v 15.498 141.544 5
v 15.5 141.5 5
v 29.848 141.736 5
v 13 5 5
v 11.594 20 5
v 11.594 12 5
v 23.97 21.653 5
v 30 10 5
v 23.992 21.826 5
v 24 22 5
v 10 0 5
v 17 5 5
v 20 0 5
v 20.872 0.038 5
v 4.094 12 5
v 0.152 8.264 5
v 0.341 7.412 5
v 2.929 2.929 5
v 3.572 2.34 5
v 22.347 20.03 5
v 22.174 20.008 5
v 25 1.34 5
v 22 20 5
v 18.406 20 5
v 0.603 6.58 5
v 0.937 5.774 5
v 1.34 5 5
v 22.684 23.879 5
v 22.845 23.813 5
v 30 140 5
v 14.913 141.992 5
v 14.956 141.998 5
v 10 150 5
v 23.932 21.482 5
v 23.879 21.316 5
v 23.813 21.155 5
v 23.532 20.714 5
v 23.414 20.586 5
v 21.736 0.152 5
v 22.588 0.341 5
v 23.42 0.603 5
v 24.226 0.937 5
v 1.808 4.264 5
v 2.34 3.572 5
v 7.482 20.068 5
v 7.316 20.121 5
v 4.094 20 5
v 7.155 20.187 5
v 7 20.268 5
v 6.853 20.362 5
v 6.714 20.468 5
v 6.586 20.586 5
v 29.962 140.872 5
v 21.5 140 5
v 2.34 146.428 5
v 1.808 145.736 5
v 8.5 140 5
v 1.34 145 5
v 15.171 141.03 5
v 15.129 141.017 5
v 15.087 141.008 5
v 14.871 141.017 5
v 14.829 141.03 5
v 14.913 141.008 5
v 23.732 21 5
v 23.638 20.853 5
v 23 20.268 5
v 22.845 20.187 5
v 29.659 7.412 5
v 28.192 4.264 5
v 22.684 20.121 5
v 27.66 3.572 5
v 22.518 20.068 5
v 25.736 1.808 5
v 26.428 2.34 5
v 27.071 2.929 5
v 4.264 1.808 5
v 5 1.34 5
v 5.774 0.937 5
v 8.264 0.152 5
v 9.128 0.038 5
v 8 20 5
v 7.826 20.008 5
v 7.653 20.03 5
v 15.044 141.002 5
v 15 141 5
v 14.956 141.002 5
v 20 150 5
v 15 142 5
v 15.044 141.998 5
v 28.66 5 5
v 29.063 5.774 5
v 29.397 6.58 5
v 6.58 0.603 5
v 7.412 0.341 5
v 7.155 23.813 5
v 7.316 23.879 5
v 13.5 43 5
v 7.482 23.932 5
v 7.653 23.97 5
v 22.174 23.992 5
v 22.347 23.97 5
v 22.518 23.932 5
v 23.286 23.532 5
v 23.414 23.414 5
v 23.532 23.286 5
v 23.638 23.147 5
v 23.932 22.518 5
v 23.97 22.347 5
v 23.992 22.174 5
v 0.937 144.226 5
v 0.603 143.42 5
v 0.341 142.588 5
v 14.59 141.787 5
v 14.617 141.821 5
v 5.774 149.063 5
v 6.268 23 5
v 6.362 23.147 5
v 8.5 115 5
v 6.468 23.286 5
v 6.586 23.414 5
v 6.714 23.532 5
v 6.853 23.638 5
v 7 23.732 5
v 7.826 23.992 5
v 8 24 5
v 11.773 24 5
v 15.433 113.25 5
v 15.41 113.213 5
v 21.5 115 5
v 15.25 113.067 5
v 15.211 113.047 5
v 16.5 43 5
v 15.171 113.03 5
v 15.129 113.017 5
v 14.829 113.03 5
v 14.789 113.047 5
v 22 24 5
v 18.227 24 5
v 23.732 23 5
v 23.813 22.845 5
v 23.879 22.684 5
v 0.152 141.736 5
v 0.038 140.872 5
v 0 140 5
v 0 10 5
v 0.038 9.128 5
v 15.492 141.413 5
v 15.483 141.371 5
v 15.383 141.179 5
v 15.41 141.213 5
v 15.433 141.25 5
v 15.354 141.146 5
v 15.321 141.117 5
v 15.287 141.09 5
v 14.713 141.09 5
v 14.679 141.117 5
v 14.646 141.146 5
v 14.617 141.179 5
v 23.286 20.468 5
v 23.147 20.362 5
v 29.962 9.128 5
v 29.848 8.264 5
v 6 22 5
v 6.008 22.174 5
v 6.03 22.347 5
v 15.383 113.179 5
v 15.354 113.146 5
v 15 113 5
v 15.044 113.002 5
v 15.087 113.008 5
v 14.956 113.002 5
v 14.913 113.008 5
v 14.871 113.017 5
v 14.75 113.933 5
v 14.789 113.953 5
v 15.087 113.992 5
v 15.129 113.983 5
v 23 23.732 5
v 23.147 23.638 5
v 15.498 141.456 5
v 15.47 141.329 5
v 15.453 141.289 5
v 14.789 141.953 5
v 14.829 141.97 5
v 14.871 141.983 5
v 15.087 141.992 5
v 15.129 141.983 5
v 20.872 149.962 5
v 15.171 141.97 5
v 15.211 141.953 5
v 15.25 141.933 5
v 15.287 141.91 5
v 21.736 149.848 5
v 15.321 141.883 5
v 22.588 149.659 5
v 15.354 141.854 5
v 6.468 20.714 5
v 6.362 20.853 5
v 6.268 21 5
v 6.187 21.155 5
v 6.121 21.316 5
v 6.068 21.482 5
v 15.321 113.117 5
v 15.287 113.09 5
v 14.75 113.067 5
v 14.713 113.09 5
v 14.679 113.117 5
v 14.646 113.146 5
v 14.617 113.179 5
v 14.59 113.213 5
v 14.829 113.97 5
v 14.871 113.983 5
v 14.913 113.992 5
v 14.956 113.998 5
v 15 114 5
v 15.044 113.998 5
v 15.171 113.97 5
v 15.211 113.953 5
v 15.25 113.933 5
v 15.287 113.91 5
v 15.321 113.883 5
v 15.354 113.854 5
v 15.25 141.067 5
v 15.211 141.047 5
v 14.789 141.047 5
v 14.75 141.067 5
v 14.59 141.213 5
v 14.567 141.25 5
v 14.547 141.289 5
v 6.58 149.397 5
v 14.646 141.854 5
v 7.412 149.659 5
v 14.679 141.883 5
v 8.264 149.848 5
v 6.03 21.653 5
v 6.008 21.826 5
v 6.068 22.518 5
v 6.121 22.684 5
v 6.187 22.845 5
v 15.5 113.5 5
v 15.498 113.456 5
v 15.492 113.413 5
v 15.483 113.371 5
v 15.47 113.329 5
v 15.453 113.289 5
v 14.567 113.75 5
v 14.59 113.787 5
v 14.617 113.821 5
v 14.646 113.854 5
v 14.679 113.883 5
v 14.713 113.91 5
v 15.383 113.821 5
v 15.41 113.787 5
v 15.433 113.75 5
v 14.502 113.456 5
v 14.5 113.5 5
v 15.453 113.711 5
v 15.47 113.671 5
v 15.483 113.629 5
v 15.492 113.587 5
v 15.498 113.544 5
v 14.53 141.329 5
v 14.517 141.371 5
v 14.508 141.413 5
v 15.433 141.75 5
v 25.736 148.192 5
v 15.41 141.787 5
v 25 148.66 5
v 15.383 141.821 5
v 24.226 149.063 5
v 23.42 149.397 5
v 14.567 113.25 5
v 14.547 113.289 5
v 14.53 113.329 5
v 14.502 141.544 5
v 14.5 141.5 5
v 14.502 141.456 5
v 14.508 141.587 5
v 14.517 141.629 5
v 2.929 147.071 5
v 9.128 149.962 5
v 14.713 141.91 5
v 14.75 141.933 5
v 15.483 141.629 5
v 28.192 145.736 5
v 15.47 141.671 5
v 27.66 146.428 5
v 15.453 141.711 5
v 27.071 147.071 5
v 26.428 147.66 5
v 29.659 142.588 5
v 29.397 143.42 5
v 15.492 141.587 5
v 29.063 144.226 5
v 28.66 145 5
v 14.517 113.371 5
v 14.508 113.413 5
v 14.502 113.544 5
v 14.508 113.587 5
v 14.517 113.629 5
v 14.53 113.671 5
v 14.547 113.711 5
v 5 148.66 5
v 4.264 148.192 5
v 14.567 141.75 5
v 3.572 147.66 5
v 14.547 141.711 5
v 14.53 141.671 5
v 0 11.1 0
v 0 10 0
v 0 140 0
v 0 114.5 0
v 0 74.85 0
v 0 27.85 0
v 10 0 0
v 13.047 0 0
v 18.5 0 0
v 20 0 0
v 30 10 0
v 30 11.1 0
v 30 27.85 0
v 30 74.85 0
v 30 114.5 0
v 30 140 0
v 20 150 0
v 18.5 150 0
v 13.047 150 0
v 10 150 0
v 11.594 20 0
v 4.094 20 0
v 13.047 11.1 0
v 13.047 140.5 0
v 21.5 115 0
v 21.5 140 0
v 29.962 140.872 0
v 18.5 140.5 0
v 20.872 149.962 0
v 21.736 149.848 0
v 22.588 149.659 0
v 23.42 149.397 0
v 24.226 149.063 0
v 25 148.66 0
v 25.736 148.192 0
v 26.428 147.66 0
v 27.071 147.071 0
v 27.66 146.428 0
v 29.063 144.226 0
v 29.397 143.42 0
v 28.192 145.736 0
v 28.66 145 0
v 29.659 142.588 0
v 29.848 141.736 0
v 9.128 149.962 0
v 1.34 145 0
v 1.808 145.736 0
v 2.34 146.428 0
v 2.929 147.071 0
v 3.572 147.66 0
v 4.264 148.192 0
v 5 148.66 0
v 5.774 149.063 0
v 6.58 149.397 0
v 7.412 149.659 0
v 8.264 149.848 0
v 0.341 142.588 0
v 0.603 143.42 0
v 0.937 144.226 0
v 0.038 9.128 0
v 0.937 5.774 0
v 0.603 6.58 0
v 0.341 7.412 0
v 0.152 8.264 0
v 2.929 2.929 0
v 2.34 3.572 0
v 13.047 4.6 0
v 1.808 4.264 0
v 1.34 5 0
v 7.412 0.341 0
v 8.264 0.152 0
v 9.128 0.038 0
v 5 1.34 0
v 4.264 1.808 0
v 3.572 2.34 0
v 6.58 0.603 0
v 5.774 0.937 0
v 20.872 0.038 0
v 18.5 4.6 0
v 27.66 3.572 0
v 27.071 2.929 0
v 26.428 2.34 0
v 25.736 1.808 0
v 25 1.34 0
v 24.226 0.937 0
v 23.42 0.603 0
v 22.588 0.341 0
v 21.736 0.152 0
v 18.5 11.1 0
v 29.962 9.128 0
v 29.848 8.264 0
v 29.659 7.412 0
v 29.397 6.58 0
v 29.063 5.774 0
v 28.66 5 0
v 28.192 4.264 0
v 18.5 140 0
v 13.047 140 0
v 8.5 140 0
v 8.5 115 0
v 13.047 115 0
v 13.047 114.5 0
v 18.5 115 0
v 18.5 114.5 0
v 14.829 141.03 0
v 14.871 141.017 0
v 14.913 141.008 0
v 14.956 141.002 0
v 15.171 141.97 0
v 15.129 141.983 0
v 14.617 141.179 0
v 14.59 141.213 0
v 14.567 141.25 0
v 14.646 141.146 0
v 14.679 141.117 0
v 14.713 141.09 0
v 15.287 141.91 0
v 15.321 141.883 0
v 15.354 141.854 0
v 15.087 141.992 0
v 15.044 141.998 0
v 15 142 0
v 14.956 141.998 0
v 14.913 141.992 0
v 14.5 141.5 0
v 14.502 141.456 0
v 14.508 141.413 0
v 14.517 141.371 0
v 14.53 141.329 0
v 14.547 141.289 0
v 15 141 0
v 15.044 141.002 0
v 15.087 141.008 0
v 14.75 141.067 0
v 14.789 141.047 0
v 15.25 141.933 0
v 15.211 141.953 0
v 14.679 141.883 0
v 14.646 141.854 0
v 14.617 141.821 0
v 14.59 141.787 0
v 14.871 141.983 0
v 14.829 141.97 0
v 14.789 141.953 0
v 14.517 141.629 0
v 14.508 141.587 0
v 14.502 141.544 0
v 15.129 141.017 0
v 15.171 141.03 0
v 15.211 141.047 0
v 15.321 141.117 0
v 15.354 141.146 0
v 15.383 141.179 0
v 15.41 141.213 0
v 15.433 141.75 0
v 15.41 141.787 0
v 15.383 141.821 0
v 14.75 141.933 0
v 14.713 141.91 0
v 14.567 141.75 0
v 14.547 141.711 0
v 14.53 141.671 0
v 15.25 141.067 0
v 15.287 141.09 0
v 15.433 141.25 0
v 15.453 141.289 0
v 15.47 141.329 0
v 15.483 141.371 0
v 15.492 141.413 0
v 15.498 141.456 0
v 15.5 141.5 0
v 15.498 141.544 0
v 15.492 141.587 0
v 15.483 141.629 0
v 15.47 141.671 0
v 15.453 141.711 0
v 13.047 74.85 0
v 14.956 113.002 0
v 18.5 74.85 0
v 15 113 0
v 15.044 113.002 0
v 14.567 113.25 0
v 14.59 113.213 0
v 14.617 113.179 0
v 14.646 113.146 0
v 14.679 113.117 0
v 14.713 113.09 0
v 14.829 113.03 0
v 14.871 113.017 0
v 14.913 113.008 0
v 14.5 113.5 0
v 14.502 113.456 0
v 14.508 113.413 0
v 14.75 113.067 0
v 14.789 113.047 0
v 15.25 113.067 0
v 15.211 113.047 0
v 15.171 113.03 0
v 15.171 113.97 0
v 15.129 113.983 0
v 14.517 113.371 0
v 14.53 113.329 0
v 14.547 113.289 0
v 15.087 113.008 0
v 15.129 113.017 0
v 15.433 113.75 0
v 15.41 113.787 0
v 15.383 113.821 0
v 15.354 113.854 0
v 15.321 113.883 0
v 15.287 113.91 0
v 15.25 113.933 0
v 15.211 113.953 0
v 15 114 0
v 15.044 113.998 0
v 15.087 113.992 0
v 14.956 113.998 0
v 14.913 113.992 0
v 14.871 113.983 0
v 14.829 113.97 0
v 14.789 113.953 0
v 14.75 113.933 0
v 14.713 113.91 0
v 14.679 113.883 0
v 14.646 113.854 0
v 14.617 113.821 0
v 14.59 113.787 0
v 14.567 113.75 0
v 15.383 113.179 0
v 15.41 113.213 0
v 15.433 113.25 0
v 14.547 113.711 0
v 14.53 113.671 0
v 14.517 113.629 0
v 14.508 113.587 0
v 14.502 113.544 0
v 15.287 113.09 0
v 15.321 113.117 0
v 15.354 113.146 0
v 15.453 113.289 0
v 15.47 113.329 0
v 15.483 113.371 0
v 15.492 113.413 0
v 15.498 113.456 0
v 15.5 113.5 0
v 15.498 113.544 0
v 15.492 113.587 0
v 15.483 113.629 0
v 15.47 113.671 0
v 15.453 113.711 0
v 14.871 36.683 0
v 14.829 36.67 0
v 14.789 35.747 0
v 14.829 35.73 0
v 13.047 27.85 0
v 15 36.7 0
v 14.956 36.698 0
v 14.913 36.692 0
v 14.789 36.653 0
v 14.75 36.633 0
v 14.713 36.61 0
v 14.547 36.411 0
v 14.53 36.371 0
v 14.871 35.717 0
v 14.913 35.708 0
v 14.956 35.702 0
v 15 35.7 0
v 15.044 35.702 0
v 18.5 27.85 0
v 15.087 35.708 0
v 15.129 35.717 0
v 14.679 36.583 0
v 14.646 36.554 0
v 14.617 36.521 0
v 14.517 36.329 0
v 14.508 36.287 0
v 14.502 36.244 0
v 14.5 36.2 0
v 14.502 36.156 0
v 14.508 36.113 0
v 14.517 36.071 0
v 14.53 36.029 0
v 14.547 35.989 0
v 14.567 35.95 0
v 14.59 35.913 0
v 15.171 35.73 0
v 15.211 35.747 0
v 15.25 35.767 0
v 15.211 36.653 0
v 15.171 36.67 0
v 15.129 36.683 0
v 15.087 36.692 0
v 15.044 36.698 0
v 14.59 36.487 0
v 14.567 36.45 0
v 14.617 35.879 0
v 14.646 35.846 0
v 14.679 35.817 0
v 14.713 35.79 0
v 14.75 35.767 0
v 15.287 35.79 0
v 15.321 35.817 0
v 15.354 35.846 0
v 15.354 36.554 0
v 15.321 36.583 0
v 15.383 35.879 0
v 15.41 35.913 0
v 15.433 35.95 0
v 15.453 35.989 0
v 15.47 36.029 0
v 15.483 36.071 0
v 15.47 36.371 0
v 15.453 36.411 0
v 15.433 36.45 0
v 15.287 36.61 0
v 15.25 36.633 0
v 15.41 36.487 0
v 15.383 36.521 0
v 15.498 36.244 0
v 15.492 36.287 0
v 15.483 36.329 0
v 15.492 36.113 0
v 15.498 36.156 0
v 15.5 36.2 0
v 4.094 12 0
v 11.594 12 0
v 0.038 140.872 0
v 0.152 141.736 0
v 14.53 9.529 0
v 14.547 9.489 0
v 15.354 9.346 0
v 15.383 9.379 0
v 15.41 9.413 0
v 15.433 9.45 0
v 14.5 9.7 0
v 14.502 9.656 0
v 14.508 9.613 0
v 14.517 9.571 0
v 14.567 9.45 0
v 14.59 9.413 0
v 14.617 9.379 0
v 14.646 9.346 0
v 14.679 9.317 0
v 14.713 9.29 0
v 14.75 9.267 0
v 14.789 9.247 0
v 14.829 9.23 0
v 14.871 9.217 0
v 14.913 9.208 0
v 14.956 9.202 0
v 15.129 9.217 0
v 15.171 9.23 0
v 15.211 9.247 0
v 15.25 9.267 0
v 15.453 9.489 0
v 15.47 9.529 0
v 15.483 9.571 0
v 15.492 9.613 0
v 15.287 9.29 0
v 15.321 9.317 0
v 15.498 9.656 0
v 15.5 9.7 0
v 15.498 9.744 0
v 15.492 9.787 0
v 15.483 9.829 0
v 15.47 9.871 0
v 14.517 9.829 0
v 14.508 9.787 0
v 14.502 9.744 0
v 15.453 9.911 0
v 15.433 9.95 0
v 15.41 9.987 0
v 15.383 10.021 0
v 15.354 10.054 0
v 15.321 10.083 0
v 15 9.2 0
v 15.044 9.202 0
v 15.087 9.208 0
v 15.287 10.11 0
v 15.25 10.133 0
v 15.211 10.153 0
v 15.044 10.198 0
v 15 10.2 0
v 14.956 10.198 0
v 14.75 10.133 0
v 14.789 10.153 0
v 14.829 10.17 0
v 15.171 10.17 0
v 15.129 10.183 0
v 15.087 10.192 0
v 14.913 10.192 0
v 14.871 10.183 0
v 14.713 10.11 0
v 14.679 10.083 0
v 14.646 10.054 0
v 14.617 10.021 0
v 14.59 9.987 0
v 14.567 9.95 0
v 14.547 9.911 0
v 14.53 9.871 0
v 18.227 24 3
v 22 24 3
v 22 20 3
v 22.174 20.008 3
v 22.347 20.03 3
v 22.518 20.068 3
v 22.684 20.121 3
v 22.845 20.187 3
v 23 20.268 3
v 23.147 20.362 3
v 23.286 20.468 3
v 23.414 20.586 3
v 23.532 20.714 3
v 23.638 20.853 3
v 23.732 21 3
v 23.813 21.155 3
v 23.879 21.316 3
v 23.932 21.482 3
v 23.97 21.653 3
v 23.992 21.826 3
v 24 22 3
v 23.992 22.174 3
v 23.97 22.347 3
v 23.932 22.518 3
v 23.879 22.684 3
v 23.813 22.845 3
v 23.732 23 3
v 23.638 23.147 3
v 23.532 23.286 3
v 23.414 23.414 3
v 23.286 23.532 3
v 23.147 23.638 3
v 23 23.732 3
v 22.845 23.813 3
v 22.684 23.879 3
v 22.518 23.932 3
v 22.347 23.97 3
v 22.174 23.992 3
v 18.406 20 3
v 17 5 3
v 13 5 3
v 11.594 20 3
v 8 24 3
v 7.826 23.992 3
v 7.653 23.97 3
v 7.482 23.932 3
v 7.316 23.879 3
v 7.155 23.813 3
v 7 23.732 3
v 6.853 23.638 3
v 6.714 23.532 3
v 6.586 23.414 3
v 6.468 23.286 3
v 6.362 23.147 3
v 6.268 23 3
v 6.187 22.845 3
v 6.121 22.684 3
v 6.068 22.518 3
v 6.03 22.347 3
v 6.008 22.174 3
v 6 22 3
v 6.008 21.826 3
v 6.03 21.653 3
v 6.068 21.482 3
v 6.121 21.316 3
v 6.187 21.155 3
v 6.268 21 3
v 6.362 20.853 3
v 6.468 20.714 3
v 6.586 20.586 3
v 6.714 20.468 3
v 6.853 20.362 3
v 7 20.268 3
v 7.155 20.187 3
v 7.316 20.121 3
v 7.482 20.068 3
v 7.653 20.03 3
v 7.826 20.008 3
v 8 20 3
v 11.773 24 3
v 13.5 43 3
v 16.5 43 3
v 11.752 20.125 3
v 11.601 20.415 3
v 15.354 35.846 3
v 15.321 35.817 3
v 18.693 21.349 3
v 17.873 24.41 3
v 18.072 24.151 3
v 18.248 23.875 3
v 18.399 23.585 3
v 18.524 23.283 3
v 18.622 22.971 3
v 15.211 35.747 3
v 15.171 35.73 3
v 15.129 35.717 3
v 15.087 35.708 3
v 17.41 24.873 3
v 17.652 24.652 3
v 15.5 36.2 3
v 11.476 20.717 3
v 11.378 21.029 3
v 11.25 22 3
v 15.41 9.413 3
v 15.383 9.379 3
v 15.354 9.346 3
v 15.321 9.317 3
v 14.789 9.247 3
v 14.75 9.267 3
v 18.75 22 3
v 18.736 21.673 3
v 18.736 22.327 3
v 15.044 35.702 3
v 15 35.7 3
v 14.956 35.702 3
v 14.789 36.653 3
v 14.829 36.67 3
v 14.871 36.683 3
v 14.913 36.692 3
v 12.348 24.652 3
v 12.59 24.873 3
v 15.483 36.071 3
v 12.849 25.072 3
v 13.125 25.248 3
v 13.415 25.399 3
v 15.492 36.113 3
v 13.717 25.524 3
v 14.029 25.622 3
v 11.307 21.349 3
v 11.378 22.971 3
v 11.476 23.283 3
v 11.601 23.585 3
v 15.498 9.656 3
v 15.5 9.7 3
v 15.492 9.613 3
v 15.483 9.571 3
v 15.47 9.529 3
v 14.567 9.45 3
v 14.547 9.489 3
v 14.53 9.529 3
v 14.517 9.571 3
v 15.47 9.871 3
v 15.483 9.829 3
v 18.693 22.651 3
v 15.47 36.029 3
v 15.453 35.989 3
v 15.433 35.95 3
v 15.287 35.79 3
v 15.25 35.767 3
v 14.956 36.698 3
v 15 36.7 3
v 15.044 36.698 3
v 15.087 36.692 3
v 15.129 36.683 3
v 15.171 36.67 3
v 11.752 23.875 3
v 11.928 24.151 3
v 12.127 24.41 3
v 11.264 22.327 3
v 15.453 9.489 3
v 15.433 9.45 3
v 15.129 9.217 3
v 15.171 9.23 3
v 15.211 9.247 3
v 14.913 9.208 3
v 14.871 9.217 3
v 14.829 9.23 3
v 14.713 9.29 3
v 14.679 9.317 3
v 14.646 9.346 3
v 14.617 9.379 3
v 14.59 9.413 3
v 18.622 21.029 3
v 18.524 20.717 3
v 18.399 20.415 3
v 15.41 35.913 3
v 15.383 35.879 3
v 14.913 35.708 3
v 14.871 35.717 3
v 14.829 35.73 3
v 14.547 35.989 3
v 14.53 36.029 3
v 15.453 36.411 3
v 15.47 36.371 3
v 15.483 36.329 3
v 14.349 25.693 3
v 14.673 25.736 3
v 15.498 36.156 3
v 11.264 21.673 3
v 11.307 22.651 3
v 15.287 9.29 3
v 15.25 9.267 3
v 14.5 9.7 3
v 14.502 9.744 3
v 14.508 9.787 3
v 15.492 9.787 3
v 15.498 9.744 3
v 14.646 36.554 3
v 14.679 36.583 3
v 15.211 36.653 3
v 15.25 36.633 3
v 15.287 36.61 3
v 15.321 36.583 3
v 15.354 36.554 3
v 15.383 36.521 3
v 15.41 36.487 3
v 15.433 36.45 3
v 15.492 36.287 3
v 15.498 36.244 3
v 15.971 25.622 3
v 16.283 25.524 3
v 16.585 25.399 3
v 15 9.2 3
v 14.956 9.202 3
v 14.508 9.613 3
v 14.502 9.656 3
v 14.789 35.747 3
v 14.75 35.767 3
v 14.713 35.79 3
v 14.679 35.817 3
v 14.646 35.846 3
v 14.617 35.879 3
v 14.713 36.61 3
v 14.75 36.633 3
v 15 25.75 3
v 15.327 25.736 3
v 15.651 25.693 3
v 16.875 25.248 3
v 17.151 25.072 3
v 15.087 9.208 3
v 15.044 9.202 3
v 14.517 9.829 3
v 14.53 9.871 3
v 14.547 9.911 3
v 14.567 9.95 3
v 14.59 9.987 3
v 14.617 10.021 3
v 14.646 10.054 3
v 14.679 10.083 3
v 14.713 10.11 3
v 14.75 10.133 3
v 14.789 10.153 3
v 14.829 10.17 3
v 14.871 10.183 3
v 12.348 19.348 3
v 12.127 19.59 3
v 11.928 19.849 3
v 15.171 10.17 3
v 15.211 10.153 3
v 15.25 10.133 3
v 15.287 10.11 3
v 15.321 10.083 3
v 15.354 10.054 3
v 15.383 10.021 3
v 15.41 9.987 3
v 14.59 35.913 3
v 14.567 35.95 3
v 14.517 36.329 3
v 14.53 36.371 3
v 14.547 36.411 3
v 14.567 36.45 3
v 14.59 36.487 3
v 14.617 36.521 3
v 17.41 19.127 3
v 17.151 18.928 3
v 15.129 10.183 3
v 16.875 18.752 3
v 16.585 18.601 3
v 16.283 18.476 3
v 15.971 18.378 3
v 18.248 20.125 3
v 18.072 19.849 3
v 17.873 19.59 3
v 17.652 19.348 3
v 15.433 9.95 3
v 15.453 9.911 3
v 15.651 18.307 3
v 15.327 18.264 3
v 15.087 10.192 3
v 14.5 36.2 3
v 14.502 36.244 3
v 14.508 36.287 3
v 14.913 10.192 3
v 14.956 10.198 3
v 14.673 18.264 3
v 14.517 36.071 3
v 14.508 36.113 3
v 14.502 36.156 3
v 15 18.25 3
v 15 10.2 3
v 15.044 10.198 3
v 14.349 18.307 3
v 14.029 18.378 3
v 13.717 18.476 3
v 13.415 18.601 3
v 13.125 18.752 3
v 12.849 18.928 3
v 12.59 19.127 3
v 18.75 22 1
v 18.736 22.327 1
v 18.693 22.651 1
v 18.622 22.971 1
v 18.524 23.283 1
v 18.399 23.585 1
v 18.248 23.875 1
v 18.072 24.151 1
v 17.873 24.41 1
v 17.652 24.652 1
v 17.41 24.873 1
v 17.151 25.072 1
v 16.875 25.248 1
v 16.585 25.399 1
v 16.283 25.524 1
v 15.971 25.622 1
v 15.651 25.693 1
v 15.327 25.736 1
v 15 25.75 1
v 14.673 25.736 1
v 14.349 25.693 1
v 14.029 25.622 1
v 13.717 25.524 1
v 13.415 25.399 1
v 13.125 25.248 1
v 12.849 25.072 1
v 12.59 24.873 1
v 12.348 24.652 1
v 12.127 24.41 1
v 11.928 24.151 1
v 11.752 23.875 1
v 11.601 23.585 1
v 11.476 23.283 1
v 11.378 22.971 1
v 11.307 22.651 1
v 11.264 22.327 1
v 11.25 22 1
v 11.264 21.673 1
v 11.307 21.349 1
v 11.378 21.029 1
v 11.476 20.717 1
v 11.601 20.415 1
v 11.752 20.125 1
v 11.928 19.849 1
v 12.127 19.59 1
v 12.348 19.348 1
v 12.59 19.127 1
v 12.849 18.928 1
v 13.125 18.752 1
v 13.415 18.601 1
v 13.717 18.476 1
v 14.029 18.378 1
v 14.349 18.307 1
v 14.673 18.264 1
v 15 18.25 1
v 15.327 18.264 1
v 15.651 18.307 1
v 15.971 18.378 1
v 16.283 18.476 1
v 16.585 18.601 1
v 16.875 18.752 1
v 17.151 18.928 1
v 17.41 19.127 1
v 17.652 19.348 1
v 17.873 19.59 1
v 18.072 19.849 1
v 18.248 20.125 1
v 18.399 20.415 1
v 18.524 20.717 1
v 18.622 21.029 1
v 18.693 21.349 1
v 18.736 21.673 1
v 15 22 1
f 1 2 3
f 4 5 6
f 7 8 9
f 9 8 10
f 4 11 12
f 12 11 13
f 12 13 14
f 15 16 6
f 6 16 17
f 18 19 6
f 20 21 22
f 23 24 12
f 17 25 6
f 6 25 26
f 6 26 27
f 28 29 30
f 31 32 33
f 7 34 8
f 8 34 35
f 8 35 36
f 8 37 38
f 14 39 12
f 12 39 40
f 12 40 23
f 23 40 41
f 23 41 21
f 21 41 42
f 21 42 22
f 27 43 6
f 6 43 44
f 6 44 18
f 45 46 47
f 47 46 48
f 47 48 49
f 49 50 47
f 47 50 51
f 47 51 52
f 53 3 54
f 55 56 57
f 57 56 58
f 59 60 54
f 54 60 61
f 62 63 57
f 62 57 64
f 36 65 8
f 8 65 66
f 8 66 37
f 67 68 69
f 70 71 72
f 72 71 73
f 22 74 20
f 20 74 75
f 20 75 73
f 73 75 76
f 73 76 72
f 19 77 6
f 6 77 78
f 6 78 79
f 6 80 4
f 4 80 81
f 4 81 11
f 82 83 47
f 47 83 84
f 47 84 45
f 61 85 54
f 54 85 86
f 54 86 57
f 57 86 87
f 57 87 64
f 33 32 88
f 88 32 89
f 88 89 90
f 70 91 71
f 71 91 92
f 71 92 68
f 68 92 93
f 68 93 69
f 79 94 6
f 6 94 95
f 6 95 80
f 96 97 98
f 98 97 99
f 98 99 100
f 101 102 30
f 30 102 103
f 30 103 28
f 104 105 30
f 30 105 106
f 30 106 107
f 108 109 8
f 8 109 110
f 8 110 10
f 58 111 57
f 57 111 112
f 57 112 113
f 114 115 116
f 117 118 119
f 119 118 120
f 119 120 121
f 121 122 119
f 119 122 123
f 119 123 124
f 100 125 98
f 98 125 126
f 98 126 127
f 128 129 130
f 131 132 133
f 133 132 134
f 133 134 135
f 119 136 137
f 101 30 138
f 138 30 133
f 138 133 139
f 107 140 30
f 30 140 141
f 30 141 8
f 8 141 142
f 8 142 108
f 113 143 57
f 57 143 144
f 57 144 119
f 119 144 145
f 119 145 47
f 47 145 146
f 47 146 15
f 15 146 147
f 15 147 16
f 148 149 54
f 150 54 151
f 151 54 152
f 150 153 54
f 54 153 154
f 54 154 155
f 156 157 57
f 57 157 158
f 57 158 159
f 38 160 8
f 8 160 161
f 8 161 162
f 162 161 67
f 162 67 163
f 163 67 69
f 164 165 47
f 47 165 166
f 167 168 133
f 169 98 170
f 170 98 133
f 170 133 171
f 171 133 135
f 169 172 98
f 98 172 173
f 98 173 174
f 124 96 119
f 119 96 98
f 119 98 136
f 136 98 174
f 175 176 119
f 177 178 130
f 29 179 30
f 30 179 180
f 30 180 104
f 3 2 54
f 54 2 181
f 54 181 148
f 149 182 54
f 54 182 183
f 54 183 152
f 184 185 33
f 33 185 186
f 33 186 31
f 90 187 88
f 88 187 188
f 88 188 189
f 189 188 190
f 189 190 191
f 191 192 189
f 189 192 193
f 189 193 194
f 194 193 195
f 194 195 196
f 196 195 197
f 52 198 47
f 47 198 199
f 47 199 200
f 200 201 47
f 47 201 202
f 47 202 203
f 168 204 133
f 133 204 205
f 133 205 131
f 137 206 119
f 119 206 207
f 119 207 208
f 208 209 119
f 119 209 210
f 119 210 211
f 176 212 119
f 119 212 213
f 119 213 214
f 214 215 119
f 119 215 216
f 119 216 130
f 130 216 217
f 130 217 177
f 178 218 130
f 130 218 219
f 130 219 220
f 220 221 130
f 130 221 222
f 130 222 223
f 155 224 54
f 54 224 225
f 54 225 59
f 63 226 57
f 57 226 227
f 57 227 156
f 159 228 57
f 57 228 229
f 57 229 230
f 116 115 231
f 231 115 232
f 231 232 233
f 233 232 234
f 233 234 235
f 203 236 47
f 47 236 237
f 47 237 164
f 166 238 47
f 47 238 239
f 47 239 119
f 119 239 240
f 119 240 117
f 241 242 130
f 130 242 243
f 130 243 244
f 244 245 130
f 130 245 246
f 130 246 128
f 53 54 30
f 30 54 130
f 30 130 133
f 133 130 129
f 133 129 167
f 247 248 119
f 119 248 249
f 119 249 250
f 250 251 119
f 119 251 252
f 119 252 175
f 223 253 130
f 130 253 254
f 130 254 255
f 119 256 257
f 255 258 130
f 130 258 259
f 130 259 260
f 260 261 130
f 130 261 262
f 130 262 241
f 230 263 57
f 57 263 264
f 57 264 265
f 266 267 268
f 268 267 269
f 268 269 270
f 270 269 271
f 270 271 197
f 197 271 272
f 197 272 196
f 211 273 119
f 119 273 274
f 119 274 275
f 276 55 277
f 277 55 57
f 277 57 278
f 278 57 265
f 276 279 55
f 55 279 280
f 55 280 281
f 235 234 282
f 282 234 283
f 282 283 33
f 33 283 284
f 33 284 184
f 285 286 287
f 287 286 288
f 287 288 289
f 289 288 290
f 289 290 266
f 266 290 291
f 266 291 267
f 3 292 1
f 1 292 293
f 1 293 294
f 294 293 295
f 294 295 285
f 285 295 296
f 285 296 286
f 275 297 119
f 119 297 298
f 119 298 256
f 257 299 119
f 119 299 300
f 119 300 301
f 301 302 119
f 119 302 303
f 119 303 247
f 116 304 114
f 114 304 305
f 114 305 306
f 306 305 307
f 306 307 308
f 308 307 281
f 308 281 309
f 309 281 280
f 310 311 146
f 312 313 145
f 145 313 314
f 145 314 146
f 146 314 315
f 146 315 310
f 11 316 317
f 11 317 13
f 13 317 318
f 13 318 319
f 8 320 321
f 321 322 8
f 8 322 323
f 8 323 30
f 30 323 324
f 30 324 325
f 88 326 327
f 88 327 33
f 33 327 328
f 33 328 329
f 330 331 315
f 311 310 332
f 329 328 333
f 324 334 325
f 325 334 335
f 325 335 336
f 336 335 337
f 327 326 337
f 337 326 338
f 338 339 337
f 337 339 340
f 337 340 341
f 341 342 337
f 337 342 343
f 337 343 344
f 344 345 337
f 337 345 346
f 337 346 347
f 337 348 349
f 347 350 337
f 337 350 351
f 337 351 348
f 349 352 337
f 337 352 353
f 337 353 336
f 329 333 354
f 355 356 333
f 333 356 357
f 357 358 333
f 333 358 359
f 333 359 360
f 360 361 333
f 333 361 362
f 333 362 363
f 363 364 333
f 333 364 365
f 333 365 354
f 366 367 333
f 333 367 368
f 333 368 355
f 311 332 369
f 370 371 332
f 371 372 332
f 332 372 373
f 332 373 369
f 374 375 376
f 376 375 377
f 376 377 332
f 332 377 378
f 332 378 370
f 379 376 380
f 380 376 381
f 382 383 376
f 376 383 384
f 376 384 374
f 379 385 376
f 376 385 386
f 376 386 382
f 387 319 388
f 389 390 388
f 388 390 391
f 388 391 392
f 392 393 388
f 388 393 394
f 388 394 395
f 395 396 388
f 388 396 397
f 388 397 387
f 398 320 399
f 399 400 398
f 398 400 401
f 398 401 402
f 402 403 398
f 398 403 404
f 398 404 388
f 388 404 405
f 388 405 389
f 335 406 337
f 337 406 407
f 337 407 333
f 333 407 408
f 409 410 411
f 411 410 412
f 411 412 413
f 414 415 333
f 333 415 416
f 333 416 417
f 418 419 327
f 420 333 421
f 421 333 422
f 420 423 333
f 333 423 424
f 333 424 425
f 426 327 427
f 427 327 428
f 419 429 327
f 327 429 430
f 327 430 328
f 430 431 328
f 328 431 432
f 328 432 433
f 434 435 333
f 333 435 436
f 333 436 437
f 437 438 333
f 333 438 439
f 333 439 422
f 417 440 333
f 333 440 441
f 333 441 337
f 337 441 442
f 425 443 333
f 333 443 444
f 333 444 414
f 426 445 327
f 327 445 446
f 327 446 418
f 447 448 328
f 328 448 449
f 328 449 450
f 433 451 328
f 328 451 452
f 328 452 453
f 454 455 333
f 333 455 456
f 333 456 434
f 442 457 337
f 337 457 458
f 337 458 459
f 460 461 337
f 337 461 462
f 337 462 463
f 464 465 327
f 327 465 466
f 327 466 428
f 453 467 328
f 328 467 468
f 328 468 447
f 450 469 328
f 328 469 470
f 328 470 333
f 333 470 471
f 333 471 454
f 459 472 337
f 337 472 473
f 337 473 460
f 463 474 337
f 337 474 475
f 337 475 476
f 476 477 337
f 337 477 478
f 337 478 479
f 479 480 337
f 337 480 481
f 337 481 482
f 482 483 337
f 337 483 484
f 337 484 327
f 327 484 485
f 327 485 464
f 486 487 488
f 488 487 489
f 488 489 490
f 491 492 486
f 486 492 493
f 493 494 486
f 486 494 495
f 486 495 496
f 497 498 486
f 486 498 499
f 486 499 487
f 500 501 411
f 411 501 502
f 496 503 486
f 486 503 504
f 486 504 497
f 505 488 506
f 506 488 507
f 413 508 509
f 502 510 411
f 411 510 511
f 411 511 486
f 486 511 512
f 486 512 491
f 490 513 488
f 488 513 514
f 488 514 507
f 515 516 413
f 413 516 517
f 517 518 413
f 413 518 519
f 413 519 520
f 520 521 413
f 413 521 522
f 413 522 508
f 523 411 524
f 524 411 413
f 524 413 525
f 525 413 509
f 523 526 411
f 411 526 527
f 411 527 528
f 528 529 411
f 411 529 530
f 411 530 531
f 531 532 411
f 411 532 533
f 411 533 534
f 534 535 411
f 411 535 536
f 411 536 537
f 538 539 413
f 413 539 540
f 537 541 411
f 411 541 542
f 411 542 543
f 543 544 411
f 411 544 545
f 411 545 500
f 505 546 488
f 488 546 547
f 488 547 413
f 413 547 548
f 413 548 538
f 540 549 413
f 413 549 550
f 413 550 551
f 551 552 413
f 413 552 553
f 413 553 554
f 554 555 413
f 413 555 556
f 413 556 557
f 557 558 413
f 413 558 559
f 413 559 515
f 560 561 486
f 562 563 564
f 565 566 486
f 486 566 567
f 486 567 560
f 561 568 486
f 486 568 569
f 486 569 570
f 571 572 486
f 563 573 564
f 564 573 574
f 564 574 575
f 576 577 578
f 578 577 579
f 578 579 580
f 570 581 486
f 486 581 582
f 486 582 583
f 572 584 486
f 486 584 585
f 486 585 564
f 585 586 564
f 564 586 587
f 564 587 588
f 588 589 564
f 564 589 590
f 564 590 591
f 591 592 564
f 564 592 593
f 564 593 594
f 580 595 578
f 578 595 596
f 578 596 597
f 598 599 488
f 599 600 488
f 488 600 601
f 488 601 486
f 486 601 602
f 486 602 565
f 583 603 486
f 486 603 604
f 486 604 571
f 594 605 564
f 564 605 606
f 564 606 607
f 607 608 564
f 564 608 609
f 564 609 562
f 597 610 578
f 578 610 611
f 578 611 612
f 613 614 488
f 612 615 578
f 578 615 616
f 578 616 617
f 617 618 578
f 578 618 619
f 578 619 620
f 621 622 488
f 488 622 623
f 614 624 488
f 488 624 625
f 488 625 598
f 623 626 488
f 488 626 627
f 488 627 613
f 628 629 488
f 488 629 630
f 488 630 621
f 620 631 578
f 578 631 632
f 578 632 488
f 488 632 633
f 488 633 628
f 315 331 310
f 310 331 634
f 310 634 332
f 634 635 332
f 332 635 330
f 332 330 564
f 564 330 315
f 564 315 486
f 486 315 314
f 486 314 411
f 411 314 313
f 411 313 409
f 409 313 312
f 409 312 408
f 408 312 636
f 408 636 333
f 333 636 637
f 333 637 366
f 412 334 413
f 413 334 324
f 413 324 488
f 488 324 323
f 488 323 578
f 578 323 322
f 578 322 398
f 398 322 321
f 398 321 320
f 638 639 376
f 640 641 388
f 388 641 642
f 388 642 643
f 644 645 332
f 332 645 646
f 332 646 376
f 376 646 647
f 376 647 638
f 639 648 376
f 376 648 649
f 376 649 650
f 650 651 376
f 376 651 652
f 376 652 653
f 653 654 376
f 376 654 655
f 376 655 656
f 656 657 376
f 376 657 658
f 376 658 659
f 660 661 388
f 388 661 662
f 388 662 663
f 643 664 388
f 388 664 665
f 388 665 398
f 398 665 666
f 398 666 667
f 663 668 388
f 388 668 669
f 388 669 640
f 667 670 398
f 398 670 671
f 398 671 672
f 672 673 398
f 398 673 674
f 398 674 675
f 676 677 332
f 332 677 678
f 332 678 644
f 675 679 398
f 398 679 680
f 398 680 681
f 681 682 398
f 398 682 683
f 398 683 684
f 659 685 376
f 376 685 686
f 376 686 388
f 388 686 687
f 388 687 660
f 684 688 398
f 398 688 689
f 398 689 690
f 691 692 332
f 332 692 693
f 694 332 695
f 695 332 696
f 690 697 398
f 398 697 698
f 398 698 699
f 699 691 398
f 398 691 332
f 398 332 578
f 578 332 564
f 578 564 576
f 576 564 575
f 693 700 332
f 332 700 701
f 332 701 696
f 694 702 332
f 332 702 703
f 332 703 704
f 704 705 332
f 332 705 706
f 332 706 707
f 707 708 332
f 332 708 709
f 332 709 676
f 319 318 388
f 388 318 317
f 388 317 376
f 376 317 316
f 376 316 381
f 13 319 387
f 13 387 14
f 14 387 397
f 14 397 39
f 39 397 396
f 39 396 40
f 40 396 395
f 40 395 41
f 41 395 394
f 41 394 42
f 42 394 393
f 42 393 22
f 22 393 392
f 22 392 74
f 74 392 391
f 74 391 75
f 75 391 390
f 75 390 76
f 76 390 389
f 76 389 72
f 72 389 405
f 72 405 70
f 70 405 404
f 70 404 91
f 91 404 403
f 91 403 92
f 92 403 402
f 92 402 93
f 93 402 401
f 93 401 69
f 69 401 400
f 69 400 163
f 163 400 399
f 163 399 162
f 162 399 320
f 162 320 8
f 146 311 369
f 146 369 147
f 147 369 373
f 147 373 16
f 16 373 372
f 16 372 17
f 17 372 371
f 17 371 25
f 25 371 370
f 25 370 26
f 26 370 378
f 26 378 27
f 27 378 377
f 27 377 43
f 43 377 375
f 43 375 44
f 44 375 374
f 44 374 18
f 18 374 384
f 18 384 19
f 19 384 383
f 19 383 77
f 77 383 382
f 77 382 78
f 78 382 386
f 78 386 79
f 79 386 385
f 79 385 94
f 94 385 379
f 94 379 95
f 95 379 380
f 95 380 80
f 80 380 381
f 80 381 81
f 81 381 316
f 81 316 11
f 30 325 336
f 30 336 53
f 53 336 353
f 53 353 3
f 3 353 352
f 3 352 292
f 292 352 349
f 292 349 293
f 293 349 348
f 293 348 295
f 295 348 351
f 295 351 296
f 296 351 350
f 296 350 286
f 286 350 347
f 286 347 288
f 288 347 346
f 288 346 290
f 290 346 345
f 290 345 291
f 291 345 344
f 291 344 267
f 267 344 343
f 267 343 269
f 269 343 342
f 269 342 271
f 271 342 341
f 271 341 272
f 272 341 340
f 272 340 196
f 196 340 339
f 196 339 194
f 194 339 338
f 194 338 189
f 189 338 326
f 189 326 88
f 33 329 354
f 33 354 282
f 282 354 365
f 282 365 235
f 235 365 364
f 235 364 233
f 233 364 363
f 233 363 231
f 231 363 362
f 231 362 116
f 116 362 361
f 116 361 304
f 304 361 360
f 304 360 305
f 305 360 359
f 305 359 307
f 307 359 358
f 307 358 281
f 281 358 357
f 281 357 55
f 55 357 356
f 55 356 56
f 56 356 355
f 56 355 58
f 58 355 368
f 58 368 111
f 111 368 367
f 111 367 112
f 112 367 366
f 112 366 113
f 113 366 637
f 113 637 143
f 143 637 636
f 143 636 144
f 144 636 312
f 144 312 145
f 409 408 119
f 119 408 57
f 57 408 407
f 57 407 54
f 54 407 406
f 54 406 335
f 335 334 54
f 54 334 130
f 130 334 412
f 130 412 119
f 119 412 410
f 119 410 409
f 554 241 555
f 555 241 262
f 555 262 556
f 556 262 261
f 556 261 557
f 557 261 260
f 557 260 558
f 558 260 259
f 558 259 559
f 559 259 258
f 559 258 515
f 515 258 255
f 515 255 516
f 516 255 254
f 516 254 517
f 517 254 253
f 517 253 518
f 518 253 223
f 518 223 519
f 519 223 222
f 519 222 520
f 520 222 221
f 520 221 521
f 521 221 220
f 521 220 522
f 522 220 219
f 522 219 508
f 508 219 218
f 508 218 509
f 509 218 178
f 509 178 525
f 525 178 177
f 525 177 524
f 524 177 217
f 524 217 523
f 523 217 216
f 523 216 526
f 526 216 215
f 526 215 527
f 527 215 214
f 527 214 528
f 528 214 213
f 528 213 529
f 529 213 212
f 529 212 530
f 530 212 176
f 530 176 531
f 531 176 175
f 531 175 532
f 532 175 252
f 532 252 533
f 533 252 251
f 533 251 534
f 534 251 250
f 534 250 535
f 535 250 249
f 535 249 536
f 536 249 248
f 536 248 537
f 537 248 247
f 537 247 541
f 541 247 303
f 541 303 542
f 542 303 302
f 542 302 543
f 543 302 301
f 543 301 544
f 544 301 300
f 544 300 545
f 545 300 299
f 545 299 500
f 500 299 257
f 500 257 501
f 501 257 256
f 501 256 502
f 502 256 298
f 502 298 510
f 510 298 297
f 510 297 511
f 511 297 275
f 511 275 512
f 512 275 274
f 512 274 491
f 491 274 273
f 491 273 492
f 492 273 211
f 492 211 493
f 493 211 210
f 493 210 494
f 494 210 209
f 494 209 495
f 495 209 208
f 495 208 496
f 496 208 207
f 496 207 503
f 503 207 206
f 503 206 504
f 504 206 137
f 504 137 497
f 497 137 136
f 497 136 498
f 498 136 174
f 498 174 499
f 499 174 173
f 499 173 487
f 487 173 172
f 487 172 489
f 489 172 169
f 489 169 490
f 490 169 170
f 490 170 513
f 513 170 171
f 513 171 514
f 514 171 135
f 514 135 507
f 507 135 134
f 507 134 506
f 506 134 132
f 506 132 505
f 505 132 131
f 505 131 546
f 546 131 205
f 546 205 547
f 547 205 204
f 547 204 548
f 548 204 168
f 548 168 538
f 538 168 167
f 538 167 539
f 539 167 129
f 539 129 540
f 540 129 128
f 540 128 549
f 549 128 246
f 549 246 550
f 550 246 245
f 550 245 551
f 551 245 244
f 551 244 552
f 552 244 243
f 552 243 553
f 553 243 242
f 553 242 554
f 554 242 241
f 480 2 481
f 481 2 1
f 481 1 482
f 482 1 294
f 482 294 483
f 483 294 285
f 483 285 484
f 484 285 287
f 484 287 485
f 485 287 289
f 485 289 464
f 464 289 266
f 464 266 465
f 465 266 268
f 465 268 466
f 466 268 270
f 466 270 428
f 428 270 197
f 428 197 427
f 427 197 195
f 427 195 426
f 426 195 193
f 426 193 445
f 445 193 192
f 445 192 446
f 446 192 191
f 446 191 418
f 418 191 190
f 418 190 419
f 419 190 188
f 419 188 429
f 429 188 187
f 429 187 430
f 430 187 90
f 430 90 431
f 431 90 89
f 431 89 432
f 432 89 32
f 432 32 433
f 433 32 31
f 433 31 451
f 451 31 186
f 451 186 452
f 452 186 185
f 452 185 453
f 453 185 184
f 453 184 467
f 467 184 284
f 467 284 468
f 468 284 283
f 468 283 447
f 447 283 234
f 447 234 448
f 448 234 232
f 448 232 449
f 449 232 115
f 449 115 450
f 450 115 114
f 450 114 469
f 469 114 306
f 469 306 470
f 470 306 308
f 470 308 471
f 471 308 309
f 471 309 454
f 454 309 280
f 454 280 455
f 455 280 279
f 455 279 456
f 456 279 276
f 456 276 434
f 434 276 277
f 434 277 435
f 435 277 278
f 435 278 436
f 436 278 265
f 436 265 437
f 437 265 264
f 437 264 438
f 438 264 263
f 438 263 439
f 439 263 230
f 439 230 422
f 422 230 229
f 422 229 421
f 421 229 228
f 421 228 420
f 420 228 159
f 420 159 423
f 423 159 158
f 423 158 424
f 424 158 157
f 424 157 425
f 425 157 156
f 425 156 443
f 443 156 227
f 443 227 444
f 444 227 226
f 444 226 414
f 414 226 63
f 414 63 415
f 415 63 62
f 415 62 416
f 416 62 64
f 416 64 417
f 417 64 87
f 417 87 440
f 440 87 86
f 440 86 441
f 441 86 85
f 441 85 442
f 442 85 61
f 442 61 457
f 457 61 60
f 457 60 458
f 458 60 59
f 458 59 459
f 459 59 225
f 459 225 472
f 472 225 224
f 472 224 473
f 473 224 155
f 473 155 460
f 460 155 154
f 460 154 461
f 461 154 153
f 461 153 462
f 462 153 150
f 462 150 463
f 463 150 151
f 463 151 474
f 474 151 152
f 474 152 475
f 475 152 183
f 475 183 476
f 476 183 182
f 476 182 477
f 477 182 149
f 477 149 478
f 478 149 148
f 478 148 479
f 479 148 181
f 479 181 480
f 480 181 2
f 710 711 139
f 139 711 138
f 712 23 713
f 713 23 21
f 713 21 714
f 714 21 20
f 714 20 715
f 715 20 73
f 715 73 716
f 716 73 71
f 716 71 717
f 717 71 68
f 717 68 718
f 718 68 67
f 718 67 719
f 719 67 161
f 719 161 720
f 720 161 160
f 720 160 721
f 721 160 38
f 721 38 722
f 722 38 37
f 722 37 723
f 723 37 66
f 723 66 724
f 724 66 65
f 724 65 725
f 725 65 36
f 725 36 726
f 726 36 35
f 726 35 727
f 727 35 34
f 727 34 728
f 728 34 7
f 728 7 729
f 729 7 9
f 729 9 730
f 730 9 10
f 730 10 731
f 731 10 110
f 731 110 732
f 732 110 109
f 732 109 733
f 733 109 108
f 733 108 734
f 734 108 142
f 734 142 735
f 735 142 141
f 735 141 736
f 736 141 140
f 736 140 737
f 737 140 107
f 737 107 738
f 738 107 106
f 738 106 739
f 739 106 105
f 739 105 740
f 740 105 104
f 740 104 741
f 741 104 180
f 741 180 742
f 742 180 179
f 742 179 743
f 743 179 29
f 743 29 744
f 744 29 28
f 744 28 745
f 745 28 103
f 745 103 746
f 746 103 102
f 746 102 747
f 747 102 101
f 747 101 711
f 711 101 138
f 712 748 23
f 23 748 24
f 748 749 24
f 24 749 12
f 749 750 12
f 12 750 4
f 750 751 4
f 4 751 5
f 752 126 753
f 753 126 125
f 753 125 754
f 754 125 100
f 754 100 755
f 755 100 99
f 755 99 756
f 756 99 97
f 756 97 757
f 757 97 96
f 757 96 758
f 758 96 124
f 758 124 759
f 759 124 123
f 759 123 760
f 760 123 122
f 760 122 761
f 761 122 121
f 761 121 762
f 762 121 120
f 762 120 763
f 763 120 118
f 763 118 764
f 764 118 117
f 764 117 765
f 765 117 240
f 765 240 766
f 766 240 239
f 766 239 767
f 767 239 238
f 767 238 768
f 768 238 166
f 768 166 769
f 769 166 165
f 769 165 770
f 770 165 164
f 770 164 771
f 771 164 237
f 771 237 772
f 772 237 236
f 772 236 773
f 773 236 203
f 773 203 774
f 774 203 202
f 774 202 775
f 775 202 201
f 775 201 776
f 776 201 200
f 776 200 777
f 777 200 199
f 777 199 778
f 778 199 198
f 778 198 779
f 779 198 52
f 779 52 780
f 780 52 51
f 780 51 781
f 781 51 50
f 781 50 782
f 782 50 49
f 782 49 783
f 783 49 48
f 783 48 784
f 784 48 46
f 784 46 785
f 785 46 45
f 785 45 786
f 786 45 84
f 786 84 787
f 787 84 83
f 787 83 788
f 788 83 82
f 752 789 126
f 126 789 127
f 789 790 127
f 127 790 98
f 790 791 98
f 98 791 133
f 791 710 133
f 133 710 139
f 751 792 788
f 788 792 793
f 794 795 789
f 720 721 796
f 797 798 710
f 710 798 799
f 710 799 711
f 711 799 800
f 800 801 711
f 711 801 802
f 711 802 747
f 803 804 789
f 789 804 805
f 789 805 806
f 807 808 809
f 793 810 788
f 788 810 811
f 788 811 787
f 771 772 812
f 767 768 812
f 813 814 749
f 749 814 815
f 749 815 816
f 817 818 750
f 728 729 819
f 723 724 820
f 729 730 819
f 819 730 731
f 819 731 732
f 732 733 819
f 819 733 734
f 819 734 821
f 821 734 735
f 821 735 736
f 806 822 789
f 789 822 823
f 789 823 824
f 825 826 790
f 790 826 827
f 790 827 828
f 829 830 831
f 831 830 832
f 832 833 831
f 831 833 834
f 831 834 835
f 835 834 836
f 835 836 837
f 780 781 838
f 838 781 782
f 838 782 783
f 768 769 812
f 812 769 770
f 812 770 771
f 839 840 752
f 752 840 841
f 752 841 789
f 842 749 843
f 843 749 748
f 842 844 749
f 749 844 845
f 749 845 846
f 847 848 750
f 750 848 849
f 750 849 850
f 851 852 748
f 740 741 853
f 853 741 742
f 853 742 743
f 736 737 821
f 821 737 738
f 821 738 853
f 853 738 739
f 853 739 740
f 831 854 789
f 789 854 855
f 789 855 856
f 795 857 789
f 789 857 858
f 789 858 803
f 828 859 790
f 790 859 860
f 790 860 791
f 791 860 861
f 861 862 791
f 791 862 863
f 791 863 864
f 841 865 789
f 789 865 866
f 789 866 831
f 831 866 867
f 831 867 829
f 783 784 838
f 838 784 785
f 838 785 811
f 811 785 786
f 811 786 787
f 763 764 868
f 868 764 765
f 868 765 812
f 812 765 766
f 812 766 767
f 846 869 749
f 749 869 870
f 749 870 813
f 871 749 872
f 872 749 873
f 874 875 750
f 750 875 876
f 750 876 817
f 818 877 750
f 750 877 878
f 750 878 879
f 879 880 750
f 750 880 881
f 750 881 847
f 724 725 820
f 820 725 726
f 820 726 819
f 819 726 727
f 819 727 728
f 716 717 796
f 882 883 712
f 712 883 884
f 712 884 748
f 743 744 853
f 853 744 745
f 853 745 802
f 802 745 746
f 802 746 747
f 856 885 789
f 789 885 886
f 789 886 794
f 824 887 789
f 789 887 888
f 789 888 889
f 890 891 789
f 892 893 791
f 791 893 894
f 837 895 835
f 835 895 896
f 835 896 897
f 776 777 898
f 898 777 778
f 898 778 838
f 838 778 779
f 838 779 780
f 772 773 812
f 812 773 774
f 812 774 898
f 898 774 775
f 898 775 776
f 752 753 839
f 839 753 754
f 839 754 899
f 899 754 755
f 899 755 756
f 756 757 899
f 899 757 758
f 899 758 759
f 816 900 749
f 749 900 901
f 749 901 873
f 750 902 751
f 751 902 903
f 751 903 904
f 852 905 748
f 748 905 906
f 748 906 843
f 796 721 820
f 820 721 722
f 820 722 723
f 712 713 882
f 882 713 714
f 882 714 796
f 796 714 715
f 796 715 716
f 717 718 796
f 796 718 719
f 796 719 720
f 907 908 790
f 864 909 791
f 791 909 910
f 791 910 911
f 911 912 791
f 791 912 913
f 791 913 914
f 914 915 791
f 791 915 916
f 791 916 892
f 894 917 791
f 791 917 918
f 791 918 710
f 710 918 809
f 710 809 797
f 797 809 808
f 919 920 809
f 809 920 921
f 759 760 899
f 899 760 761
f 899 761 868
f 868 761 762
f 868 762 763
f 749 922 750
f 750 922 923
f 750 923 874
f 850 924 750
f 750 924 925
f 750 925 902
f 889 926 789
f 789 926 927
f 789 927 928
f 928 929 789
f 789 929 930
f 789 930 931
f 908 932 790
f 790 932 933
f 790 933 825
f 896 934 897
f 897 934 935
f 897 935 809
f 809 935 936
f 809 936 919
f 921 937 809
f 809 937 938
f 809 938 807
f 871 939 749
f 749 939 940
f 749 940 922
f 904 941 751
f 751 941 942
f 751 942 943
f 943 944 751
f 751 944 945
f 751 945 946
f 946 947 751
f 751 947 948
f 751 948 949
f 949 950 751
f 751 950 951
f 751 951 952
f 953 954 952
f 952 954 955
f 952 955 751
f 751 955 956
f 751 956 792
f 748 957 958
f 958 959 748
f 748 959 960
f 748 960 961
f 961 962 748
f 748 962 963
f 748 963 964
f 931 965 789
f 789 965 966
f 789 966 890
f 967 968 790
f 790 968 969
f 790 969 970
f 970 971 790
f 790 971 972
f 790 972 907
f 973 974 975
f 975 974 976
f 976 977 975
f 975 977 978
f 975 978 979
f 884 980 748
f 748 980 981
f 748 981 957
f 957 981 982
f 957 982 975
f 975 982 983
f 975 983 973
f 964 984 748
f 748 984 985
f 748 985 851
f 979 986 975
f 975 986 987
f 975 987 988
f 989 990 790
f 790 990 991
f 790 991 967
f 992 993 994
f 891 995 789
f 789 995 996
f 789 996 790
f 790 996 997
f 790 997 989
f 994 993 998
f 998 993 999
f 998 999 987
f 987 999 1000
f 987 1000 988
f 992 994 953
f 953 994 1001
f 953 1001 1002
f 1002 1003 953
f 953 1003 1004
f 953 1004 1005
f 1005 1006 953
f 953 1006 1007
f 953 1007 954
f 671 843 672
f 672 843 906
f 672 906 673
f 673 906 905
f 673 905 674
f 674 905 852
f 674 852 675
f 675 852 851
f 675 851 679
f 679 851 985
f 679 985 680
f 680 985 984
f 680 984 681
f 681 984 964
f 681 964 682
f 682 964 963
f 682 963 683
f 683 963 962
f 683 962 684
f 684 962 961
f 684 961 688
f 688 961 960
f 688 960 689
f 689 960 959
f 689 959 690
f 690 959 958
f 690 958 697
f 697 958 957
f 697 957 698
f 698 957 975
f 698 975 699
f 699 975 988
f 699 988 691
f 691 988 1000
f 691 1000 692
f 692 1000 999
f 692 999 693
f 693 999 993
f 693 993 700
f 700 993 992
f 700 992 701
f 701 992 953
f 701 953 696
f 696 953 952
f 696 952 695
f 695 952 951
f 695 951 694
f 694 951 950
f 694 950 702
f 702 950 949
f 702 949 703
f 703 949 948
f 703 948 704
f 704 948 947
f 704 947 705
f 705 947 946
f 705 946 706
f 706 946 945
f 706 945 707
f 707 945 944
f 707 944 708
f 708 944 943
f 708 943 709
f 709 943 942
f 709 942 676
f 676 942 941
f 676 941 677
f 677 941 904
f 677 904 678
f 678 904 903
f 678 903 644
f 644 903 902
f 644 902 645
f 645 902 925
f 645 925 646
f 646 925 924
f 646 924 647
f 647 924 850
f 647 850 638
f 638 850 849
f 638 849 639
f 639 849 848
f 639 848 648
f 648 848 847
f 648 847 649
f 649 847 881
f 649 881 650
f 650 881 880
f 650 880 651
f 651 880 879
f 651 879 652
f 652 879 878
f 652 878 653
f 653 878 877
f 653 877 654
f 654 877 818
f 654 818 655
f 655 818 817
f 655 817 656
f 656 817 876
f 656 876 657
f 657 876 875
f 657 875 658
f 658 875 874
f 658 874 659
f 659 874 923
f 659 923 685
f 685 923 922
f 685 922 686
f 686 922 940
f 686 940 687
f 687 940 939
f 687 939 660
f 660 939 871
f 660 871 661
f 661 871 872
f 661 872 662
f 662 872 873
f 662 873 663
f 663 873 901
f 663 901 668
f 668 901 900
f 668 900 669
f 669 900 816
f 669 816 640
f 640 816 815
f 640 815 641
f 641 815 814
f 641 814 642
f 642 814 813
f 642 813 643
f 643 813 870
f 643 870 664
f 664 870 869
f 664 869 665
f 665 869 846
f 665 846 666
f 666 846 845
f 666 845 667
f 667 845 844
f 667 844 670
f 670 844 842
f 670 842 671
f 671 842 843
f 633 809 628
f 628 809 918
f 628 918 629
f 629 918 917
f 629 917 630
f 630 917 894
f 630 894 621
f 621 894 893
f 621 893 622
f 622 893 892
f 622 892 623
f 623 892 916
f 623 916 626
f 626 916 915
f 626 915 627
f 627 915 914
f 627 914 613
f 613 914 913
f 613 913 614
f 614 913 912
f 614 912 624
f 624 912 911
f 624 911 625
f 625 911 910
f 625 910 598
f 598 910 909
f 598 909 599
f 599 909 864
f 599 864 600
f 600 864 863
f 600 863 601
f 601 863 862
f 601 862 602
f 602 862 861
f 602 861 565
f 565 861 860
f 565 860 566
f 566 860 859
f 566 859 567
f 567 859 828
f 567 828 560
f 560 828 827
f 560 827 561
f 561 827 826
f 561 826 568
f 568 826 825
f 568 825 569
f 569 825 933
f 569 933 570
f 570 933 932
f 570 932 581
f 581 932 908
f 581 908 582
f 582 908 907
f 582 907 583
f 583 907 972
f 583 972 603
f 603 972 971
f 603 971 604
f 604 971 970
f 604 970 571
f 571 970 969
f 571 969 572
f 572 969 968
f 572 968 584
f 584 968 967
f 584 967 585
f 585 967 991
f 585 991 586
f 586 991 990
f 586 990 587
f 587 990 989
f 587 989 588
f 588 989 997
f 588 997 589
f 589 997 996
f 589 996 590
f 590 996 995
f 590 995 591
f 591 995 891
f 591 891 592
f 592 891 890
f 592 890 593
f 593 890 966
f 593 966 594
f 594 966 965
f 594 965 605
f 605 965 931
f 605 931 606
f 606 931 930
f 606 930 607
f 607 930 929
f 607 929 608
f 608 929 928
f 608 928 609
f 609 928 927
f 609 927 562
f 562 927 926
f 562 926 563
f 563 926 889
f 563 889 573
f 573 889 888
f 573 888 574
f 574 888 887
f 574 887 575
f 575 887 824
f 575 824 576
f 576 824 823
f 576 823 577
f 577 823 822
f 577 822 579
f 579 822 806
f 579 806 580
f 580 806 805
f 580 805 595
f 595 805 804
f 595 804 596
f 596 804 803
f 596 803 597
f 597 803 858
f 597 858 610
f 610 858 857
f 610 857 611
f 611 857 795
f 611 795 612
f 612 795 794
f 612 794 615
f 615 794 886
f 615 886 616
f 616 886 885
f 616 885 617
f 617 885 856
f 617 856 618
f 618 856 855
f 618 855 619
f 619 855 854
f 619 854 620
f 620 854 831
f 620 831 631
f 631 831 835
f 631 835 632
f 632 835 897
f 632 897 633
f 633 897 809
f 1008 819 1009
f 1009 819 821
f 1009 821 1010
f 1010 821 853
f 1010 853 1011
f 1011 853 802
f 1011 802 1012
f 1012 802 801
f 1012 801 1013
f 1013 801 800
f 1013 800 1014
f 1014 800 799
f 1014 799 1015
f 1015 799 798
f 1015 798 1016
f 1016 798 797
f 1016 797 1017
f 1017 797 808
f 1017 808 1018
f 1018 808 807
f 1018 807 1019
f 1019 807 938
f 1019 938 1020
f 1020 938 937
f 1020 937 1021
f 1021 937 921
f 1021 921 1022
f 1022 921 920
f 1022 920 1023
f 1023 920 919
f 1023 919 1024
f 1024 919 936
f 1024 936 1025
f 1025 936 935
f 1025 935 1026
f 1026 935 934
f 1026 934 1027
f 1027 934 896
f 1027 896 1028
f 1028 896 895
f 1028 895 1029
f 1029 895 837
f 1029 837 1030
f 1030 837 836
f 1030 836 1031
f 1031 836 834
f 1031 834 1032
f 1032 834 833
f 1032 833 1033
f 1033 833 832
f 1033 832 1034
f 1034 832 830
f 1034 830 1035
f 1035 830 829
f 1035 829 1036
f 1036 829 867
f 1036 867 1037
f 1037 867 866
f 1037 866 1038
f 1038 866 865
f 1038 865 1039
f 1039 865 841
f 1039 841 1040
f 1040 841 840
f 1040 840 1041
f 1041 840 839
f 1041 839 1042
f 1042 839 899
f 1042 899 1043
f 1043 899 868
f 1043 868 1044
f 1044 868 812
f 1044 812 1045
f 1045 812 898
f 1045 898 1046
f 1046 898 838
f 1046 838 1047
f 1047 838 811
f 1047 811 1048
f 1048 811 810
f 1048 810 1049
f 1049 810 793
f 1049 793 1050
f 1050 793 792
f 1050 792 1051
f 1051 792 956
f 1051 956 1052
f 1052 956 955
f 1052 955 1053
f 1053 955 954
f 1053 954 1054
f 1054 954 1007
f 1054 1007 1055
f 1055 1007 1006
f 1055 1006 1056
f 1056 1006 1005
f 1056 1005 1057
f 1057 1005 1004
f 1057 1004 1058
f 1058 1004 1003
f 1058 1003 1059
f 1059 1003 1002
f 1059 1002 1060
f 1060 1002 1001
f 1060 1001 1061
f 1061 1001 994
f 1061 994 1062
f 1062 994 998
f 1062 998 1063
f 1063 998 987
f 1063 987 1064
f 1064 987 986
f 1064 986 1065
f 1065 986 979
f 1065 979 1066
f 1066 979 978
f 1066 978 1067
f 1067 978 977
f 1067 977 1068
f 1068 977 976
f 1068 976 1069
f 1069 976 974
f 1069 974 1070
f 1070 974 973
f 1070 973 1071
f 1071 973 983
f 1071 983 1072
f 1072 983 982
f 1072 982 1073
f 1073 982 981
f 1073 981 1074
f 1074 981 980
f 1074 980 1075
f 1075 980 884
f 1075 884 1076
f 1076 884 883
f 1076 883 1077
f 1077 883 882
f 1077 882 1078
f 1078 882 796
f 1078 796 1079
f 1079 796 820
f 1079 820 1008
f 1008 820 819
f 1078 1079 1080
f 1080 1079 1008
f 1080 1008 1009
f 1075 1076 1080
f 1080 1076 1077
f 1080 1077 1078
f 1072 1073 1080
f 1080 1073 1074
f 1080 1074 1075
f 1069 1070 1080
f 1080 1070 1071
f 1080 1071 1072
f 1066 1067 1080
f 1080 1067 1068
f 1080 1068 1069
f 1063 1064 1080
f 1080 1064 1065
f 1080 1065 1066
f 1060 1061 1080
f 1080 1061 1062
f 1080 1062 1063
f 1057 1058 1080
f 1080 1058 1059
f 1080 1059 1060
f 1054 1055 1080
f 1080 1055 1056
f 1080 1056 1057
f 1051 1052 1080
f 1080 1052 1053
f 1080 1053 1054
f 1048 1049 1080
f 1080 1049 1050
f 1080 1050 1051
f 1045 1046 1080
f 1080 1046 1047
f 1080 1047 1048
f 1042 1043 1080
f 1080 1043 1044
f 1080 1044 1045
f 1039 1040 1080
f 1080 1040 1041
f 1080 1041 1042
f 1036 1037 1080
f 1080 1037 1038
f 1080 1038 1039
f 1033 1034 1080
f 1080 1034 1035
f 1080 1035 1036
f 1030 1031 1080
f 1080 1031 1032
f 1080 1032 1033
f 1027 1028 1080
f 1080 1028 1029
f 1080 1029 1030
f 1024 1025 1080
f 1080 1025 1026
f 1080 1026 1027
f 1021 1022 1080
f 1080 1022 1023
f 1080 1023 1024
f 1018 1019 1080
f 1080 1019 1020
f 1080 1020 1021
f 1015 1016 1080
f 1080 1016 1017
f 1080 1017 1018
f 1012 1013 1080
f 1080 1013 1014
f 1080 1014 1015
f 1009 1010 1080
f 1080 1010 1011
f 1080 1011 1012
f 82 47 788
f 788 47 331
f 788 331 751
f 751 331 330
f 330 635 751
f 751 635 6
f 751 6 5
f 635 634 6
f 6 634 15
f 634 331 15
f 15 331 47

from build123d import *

# Parameters (mm, degrees)
SKICA1_W                 = 30
SKICA1_H                 = 150
P_IDAT_VYSUNUT_M1_DEPTH  = 5
ZAOBLIT1_R               = 10
SKICA2_W                 = 13
SKICA2_H                 = 25
ODEBRAT_VYSUNUT_M1_DEPTH = 154.05227865
SKICA3_R                 = 0.5
ODEBRAT_VYSUNUT_M2_DEPTH = 154.05227865
ODEBRAT_VYSUNUT_M3_DEPTH = 2
SKICA5_R                 = 0.5
ODEBRAT_VYSUNUT_M4_DEPTH = 154
SKICA6_R                 = 3.75
ODEBRAT_VYSUNUT_M5_DEPTH = 2
SKICA7_W                 = 7.5
SKICA7_H                 = 8
ODEBRAT_VYSUNUT_M6_DEPTH = 154.05227865


with BuildPart() as part:
    # Skica1 → Přidat vysunutím1 (new body)
    with BuildSketch(Plane.XY):
        with Locations((15, 75)):
            Rectangle(SKICA1_W, SKICA1_H)
    extrude(amount=P_IDAT_VYSUNUT_M1_DEPTH)

    # Zaoblit1
    zaoblit1_edges = [part.edges().sort_by_distance(p)[0] for p in [
        (0, 150, 2.5),
        (30, 150, 2.5),
        (30, 0, 2.5),
        (0, 0, 2.5),
    ]]
    fillet(zaoblit1_edges, radius=ZAOBLIT1_R)

    # Skica2 → Odebrat vysunutím1 (cut, through all)
    with BuildSketch(Plane.XY.offset(5)):
        with Locations((15, 127.5)):
            Rectangle(SKICA2_W, SKICA2_H)
    extrude(amount=-ODEBRAT_VYSUNUT_M1_DEPTH, mode=Mode.SUBTRACT)

    # Skica3 → Odebrat vysunutím2 (cut, through all)
    with BuildSketch(Plane.XY.offset(5)):
        with Locations((15, 141.5)):
            Circle(SKICA3_R)
        with Locations(Location((15, 113.5, 0), (0, 0, 180))):
            Circle(SKICA3_R)
    extrude(amount=-ODEBRAT_VYSUNUT_M2_DEPTH, mode=Mode.SUBTRACT)

    # Skica4 → Odebrat vysunutím3 (cut)
    with BuildSketch(Plane.XY.offset(5)):
        Polygon((18.40625, 20), (11.59375, 20), (13, 5), (17, 5), align=None)
        Polygon((18.5, 21), (11.5, 21), (11.59375, 20), (18.40625, 20), align=None)
        Polygon((11.59375, 20), (11.5, 21), (11.772727273, 24), (8, 24), (8, 20), align=None)
        Polygon((11.772727273, 24), (11.5, 21), (18.5, 21), (18.227272727, 24), align=None)
        Polygon((18.227272727, 24), (18.5, 21), (18.40625, 20), (22, 20), (22, 24), align=None)
        with BuildLine():
            ThreePointArc((22, 24), (24, 22), (22, 20))
            Line((22, 20), (22, 24))
        make_face()
        with BuildLine():
            Line((8, 24), (8, 20))
            ThreePointArc((8, 20), (6, 22), (8, 24))
        make_face()
        Polygon((13.5, 43), (11.772727273, 24), (18.227272727, 24), (16.5, 43), align=None)
    extrude(amount=-ODEBRAT_VYSUNUT_M3_DEPTH, mode=Mode.SUBTRACT)

    # Skica5 → Odebrat vysunutím4 (cut, through all)
    with BuildSketch(Plane.XY.offset(3)):
        with Locations((15, 36.2)):
            Circle(SKICA5_R)
        with Locations((15, 9.7)):
            Circle(SKICA5_R)
    extrude(amount=-ODEBRAT_VYSUNUT_M4_DEPTH, mode=Mode.SUBTRACT)

    # Skica6 → Odebrat vysunutím5 (cut)
    with BuildSketch(Plane.XY.offset(3)):
        with Locations((15, 22)):
            Circle(SKICA6_R)
    extrude(amount=-ODEBRAT_VYSUNUT_M5_DEPTH, mode=Mode.SUBTRACT)

    # Skica7 → Odebrat vysunutím6 (cut, through all)
    with BuildSketch(Plane.XY.offset(5)):
        with Locations((7.84375, 16)):
            Rectangle(SKICA7_W, SKICA7_H)
    extrude(amount=-ODEBRAT_VYSUNUT_M6_DEPTH, mode=Mode.SUBTRACT)


solid = part.part
